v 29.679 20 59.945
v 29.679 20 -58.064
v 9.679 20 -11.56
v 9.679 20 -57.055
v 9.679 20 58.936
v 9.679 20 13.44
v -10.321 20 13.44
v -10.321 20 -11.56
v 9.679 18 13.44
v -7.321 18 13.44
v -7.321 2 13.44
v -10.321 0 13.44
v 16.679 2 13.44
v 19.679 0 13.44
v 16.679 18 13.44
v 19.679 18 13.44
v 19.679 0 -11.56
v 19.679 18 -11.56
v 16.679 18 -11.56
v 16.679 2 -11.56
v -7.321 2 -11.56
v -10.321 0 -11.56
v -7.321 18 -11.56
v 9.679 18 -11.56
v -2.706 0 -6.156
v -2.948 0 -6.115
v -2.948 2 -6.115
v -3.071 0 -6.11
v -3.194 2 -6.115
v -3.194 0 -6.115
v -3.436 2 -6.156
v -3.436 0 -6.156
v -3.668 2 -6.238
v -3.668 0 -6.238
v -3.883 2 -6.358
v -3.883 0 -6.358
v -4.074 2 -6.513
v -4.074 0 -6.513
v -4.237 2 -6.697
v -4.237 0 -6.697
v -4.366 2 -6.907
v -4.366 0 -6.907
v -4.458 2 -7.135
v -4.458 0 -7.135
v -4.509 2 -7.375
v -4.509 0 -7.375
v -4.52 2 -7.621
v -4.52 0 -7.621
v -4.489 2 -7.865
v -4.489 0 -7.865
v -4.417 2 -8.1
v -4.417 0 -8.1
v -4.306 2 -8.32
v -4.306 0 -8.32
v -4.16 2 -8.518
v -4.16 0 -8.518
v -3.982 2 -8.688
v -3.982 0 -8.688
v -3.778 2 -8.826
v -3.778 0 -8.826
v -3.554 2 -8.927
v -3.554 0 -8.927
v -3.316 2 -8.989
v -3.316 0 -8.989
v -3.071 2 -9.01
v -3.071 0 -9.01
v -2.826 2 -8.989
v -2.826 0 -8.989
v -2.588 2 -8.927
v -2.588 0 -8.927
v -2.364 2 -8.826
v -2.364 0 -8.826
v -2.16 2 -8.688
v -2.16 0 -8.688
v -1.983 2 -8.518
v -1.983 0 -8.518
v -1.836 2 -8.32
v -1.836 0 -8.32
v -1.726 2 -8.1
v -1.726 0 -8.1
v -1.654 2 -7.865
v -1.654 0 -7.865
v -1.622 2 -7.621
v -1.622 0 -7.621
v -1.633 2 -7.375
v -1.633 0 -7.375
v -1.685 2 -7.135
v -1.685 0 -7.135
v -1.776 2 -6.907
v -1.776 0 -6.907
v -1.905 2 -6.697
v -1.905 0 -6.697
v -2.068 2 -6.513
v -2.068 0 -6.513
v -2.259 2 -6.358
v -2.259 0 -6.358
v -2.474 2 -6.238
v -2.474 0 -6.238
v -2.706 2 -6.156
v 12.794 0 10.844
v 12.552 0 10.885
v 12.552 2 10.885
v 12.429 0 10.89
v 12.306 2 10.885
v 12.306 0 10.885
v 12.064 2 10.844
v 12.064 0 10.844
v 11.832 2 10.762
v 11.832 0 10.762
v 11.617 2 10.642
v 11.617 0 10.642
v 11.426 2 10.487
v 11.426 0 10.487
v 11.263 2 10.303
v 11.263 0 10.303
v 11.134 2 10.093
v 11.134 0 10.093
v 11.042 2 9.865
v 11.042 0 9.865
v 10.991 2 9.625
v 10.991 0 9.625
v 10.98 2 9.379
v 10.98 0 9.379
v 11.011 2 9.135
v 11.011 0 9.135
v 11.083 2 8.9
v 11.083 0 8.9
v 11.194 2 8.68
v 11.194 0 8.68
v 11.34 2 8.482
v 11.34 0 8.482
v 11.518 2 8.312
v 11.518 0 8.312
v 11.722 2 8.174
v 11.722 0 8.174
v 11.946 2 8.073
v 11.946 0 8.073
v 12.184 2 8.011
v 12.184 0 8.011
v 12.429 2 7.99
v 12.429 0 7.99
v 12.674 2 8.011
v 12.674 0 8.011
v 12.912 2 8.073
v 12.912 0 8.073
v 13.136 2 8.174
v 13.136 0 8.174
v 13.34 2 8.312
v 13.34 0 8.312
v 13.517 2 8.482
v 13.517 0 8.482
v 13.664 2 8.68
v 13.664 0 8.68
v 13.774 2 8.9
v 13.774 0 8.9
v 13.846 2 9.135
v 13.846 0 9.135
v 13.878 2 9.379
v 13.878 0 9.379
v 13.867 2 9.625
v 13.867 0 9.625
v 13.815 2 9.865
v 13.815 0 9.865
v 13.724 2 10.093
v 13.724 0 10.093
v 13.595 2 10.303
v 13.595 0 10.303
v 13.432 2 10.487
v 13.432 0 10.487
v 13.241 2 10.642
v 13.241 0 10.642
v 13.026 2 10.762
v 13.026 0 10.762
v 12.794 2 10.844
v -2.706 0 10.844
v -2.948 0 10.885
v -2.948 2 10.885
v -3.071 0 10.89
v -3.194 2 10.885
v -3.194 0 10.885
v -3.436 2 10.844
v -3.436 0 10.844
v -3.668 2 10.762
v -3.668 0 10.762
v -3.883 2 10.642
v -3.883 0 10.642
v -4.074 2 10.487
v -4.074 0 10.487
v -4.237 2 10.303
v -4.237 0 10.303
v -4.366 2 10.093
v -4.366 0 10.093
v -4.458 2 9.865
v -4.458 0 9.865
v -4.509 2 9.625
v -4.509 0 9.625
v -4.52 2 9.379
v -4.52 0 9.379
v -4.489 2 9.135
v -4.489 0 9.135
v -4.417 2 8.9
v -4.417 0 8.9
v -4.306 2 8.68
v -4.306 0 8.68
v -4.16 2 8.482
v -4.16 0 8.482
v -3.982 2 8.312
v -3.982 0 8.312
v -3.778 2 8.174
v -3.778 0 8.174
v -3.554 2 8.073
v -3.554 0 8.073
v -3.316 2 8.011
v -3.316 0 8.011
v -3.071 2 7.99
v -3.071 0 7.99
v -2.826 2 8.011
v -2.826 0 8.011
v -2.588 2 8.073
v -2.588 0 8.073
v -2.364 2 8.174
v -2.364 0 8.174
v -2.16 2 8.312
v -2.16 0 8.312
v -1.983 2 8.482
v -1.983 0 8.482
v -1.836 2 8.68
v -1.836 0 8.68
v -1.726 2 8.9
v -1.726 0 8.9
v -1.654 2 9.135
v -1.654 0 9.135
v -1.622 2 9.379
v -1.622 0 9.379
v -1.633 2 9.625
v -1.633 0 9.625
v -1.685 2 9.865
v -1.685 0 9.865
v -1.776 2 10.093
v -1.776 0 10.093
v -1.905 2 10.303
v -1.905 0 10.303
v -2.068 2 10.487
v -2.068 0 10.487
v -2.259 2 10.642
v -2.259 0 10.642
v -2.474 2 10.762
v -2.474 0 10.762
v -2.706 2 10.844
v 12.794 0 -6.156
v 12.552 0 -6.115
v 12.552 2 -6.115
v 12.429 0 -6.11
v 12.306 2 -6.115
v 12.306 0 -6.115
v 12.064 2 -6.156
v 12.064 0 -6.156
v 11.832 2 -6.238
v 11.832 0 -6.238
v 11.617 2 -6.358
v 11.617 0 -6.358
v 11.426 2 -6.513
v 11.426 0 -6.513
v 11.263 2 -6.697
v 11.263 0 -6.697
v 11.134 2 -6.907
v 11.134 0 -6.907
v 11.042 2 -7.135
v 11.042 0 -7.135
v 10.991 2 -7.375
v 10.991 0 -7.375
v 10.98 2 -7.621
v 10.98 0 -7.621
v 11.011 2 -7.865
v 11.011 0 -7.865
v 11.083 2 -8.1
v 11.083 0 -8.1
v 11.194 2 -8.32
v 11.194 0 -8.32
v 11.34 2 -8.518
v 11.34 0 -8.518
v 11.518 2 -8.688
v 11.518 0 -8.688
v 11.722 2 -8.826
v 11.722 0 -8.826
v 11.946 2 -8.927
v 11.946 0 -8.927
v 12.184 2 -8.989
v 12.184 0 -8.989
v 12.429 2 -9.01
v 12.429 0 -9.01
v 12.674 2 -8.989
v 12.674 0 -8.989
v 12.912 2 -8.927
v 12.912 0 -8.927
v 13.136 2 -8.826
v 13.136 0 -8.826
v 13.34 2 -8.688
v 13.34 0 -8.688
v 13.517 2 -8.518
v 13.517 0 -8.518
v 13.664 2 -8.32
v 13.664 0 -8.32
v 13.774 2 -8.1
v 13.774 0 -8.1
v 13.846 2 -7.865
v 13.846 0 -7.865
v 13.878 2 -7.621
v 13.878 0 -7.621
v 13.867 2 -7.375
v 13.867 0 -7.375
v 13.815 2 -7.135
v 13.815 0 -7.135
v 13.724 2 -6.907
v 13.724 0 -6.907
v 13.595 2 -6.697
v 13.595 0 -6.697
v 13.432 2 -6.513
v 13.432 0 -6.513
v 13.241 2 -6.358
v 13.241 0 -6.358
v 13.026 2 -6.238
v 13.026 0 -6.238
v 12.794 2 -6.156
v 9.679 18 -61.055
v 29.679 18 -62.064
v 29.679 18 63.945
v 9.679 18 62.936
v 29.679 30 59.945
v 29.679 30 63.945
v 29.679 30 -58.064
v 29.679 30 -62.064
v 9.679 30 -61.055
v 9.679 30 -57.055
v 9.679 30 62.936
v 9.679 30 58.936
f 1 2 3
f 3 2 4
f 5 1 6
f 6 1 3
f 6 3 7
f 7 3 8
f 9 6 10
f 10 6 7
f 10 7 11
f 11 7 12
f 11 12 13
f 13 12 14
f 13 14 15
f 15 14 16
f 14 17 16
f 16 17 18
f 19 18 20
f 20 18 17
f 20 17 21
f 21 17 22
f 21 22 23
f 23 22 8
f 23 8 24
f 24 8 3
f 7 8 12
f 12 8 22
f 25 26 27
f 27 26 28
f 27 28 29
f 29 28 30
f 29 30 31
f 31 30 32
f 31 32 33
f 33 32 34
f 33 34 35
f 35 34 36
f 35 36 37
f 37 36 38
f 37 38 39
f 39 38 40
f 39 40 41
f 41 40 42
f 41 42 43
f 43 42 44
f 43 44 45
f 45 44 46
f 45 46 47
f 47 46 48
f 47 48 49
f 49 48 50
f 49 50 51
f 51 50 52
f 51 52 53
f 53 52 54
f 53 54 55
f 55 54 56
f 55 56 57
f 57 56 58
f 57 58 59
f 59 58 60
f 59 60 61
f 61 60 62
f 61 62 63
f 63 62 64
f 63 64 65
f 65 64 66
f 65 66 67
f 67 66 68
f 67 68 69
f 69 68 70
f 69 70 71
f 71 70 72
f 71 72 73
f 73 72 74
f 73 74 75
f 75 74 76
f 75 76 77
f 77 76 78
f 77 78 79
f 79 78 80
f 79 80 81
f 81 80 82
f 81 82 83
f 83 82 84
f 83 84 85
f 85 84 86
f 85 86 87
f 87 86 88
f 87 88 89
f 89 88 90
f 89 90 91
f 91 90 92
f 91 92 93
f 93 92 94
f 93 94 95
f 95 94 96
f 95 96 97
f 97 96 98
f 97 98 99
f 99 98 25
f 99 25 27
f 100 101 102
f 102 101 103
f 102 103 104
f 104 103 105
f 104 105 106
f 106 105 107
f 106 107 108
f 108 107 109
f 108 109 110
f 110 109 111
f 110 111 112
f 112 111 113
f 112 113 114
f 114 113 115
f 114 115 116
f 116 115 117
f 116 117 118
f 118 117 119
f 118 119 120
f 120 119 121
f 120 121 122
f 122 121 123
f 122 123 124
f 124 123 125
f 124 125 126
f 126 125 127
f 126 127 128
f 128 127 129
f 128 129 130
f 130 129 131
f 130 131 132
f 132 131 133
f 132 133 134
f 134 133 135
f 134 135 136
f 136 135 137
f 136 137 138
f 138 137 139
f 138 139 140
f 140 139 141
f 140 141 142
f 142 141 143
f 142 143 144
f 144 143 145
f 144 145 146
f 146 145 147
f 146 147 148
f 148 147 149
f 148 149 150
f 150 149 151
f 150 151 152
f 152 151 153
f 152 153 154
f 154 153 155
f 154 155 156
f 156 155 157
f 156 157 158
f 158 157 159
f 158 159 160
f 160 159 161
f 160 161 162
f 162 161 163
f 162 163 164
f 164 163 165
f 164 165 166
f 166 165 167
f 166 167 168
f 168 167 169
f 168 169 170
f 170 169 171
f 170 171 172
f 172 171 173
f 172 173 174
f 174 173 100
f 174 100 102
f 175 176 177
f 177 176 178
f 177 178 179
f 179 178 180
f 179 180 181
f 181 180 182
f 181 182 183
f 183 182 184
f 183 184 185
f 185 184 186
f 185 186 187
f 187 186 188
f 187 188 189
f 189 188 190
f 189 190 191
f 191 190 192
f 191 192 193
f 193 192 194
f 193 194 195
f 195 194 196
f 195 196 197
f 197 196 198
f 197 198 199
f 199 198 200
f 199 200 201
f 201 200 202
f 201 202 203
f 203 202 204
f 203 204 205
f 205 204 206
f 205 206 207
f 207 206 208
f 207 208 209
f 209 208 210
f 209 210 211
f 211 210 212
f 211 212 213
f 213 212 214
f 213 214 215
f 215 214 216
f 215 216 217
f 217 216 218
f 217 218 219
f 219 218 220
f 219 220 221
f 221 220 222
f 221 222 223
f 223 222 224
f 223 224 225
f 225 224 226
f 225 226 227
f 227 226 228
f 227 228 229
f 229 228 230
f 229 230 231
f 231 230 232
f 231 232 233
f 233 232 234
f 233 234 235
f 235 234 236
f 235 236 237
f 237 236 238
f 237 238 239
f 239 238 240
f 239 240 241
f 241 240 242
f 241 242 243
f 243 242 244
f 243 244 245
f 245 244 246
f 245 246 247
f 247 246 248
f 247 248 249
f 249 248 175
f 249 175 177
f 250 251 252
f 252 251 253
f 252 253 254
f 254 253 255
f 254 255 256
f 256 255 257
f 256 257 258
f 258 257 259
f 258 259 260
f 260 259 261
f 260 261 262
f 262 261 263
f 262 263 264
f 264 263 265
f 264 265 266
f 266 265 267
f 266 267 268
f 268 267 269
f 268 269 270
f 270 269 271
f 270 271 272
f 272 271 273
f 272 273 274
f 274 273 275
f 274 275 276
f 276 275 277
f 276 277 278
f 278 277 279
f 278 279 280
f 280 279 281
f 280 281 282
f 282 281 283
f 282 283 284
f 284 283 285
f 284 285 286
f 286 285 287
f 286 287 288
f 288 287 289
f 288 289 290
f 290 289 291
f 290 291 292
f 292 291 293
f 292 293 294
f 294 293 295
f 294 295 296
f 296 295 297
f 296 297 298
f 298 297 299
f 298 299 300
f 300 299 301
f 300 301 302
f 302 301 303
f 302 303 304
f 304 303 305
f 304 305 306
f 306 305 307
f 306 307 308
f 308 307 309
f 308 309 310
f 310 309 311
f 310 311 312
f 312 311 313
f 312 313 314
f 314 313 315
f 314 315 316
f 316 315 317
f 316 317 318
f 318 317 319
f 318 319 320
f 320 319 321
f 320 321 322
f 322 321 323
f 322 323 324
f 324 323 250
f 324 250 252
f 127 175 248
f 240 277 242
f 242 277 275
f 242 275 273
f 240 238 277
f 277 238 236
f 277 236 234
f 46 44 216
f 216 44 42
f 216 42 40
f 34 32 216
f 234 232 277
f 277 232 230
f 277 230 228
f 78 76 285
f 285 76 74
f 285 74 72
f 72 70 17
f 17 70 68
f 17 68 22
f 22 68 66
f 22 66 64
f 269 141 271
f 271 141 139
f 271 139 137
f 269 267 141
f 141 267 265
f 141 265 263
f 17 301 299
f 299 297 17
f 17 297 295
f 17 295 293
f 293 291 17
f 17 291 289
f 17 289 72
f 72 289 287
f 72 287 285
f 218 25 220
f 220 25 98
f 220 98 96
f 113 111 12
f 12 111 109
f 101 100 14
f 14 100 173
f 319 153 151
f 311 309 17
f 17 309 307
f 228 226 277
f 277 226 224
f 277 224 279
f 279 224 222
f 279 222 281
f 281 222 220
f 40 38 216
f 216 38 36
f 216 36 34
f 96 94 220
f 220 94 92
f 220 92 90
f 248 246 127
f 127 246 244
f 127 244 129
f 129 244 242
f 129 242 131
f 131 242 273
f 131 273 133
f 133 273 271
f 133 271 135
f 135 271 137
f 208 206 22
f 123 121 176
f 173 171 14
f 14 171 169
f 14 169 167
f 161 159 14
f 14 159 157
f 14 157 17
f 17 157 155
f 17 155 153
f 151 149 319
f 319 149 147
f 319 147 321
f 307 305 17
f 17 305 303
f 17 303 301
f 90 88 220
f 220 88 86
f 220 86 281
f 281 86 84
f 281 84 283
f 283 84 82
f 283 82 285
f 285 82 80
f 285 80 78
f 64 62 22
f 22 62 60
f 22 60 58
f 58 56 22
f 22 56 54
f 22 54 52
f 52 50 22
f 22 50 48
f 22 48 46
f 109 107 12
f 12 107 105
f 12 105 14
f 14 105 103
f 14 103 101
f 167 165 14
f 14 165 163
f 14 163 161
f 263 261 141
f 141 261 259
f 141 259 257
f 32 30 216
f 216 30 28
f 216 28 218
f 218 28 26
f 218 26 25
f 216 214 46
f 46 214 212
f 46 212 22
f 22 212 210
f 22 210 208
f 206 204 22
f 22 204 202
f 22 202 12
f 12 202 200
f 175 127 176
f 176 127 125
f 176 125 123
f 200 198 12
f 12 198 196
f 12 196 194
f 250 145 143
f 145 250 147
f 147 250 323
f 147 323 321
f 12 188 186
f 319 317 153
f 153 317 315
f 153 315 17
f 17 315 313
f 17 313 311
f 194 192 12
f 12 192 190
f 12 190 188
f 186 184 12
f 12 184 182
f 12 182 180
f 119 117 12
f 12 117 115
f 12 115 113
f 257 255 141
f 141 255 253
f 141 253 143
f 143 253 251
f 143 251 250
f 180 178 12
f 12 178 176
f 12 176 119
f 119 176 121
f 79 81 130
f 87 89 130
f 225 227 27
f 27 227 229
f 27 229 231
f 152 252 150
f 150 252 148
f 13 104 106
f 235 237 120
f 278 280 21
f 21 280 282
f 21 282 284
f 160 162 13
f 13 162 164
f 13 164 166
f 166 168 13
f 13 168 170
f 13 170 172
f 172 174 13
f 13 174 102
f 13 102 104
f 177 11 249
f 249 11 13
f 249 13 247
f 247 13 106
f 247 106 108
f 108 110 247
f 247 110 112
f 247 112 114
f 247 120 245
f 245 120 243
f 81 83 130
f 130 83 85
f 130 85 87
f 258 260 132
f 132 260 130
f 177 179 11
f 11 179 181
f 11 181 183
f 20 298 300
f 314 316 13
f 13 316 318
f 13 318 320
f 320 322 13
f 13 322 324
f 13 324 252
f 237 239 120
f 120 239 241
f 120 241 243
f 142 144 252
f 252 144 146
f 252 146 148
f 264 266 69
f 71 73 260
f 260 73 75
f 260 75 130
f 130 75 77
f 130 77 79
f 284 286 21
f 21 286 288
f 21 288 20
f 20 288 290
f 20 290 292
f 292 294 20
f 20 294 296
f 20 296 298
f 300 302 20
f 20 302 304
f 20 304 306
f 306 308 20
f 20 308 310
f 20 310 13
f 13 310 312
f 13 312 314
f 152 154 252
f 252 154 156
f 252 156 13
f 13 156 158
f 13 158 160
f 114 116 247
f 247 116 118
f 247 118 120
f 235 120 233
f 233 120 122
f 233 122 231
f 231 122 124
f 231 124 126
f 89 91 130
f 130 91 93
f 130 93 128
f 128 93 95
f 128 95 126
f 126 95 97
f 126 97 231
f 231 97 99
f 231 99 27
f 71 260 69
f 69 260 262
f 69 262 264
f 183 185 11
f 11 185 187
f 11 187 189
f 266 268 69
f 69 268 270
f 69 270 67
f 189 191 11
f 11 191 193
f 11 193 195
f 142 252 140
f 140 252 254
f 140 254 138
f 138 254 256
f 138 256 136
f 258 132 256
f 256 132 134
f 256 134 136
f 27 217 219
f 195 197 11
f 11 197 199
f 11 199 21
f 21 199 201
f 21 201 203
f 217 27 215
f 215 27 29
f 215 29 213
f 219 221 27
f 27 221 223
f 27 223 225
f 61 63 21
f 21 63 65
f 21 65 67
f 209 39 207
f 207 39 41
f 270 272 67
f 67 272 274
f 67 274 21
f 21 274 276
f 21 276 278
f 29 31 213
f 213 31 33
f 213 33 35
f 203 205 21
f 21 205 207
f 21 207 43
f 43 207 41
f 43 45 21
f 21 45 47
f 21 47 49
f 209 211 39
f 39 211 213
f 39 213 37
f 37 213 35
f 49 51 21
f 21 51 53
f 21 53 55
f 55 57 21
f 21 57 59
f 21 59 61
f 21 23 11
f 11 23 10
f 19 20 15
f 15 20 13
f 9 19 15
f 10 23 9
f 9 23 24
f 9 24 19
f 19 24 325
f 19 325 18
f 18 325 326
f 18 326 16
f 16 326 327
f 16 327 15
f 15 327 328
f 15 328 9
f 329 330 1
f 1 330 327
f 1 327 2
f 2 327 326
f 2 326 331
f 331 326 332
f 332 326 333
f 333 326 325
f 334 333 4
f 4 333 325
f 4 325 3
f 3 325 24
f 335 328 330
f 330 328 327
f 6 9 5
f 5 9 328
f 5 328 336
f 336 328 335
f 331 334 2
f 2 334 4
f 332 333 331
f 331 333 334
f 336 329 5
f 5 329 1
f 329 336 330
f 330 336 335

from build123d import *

# Parameters (mm, degrees)
SKETCH1_W           = 30
SKETCH1_H           = 25
SKETCH1_R           = 1.45
BOSS_EXTRUDE1_DEPTH = 18
SKETCH3_W           = 30
SKETCH3_H           = 25
BOSS_EXTRUDE2_DEPTH = 2
SKETCH4_W           = 24
SKETCH4_H           = 16
CUT_EXTRUDE2_DEPTH  = 26
SKETCH5_W           = 25
SKETCH5_H           = 2
BOSS_EXTRUDE3_DEPTH = 10
BOSS_EXTRUDE4_DEPTH = 2
BOSS_EXTRUDE5_DEPTH = 10


with BuildPart() as part:
    # Sketch1 → Boss-Extrude1 (new body)
    with BuildSketch(Plane(origin=(0, 0, 0), x_dir=(1, 0, 0), z_dir=(0, 1, 0))):
        with Locations((4.678899083, -0.940366972)):
            Rectangle(SKETCH1_W, SKETCH1_H)
        with Locations((-3.071100917, 7.559633028)):
            Circle(SKETCH1_R, mode=Mode.SUBTRACT)
        with Locations((12.428899083, 7.559633028)):
            Circle(SKETCH1_R, mode=Mode.SUBTRACT)
        with Locations((12.428899083, -9.440366972)):
            Circle(SKETCH1_R, mode=Mode.SUBTRACT)
        with Locations((-3.071100917, -9.440366972)):
            Circle(SKETCH1_R, mode=Mode.SUBTRACT)
    extrude(amount=BOSS_EXTRUDE1_DEPTH)

    # Sketch3 → Boss-Extrude2 (add)
    with BuildSketch(Plane(origin=(0, 18, 0), x_dir=(1, 0, 0), z_dir=(0, 1, 0))):
        with Locations((4.678899083, -0.940366972)):
            Rectangle(SKETCH3_W, SKETCH3_H)
    extrude(amount=BOSS_EXTRUDE2_DEPTH)

    # Sketch4 → Cut-Extrude2 (cut, through all)
    with BuildSketch(Plane.XY.offset(13.440366972)):
        with Locations((4.678899083, 10)):
            Rectangle(SKETCH4_W, SKETCH4_H)
    extrude(amount=-CUT_EXTRUDE2_DEPTH, mode=Mode.SUBTRACT)

    # Sketch5 → Boss-Extrude3 (add)
    with BuildSketch(Plane(origin=(19.678899083, 0, 0), x_dir=(0, 0, -1), z_dir=(1, 0, 0))):
        with Locations((-0.940366972, 19)):
            Rectangle(SKETCH5_W, SKETCH5_H)
    extrude(amount=BOSS_EXTRUDE3_DEPTH)

    # Sketch6 → Boss-Extrude4 (add)
    with BuildSketch(Plane(origin=(0, 20, 0), x_dir=(1, 0, 0), z_dir=(0, 1, 0))):
        Polygon((19.678899083, 11.559633028), (19.678899083, 61.559633028), (9.678899083, 61.054804674), (9.678899083, 11.559633028), align=None)
        Polygon((29.678899083, 62.064461381), (19.678899083, 61.559633028), (19.678899083, 11.559633028), (29.678899083, 11.559633028), align=None)
        Polygon((29.678899083, -13.440366972), (19.678899083, -13.440366972), (19.678899083, -63.440366972), (29.678899083, -63.945195326), align=None)
        Polygon((19.678899083, -63.440366972), (19.678899083, -13.440366972), (9.678899083, -13.440366972), (9.678899083, -62.935538619), align=None)
    extrude(amount=-BOSS_EXTRUDE4_DEPTH)

    # Sketch7 → Boss-Extrude5 (add)
    with BuildSketch(Plane(origin=(0, 20, 0), x_dir=(1, 0, 0), z_dir=(0, 1, 0))):
        Polygon((9.678899083, 61.054804674), (29.678899083, 62.064461381), (29.678899083, 58.064461381), (9.678899083, 57.054804674), align=None)
        Polygon((9.678899083, -58.935538619), (29.678899083, -59.945195326), (29.678899083, -63.945195326), (9.678899083, -62.935538619), align=None)
    extrude(amount=BOSS_EXTRUDE5_DEPTH)


solid = part.part
